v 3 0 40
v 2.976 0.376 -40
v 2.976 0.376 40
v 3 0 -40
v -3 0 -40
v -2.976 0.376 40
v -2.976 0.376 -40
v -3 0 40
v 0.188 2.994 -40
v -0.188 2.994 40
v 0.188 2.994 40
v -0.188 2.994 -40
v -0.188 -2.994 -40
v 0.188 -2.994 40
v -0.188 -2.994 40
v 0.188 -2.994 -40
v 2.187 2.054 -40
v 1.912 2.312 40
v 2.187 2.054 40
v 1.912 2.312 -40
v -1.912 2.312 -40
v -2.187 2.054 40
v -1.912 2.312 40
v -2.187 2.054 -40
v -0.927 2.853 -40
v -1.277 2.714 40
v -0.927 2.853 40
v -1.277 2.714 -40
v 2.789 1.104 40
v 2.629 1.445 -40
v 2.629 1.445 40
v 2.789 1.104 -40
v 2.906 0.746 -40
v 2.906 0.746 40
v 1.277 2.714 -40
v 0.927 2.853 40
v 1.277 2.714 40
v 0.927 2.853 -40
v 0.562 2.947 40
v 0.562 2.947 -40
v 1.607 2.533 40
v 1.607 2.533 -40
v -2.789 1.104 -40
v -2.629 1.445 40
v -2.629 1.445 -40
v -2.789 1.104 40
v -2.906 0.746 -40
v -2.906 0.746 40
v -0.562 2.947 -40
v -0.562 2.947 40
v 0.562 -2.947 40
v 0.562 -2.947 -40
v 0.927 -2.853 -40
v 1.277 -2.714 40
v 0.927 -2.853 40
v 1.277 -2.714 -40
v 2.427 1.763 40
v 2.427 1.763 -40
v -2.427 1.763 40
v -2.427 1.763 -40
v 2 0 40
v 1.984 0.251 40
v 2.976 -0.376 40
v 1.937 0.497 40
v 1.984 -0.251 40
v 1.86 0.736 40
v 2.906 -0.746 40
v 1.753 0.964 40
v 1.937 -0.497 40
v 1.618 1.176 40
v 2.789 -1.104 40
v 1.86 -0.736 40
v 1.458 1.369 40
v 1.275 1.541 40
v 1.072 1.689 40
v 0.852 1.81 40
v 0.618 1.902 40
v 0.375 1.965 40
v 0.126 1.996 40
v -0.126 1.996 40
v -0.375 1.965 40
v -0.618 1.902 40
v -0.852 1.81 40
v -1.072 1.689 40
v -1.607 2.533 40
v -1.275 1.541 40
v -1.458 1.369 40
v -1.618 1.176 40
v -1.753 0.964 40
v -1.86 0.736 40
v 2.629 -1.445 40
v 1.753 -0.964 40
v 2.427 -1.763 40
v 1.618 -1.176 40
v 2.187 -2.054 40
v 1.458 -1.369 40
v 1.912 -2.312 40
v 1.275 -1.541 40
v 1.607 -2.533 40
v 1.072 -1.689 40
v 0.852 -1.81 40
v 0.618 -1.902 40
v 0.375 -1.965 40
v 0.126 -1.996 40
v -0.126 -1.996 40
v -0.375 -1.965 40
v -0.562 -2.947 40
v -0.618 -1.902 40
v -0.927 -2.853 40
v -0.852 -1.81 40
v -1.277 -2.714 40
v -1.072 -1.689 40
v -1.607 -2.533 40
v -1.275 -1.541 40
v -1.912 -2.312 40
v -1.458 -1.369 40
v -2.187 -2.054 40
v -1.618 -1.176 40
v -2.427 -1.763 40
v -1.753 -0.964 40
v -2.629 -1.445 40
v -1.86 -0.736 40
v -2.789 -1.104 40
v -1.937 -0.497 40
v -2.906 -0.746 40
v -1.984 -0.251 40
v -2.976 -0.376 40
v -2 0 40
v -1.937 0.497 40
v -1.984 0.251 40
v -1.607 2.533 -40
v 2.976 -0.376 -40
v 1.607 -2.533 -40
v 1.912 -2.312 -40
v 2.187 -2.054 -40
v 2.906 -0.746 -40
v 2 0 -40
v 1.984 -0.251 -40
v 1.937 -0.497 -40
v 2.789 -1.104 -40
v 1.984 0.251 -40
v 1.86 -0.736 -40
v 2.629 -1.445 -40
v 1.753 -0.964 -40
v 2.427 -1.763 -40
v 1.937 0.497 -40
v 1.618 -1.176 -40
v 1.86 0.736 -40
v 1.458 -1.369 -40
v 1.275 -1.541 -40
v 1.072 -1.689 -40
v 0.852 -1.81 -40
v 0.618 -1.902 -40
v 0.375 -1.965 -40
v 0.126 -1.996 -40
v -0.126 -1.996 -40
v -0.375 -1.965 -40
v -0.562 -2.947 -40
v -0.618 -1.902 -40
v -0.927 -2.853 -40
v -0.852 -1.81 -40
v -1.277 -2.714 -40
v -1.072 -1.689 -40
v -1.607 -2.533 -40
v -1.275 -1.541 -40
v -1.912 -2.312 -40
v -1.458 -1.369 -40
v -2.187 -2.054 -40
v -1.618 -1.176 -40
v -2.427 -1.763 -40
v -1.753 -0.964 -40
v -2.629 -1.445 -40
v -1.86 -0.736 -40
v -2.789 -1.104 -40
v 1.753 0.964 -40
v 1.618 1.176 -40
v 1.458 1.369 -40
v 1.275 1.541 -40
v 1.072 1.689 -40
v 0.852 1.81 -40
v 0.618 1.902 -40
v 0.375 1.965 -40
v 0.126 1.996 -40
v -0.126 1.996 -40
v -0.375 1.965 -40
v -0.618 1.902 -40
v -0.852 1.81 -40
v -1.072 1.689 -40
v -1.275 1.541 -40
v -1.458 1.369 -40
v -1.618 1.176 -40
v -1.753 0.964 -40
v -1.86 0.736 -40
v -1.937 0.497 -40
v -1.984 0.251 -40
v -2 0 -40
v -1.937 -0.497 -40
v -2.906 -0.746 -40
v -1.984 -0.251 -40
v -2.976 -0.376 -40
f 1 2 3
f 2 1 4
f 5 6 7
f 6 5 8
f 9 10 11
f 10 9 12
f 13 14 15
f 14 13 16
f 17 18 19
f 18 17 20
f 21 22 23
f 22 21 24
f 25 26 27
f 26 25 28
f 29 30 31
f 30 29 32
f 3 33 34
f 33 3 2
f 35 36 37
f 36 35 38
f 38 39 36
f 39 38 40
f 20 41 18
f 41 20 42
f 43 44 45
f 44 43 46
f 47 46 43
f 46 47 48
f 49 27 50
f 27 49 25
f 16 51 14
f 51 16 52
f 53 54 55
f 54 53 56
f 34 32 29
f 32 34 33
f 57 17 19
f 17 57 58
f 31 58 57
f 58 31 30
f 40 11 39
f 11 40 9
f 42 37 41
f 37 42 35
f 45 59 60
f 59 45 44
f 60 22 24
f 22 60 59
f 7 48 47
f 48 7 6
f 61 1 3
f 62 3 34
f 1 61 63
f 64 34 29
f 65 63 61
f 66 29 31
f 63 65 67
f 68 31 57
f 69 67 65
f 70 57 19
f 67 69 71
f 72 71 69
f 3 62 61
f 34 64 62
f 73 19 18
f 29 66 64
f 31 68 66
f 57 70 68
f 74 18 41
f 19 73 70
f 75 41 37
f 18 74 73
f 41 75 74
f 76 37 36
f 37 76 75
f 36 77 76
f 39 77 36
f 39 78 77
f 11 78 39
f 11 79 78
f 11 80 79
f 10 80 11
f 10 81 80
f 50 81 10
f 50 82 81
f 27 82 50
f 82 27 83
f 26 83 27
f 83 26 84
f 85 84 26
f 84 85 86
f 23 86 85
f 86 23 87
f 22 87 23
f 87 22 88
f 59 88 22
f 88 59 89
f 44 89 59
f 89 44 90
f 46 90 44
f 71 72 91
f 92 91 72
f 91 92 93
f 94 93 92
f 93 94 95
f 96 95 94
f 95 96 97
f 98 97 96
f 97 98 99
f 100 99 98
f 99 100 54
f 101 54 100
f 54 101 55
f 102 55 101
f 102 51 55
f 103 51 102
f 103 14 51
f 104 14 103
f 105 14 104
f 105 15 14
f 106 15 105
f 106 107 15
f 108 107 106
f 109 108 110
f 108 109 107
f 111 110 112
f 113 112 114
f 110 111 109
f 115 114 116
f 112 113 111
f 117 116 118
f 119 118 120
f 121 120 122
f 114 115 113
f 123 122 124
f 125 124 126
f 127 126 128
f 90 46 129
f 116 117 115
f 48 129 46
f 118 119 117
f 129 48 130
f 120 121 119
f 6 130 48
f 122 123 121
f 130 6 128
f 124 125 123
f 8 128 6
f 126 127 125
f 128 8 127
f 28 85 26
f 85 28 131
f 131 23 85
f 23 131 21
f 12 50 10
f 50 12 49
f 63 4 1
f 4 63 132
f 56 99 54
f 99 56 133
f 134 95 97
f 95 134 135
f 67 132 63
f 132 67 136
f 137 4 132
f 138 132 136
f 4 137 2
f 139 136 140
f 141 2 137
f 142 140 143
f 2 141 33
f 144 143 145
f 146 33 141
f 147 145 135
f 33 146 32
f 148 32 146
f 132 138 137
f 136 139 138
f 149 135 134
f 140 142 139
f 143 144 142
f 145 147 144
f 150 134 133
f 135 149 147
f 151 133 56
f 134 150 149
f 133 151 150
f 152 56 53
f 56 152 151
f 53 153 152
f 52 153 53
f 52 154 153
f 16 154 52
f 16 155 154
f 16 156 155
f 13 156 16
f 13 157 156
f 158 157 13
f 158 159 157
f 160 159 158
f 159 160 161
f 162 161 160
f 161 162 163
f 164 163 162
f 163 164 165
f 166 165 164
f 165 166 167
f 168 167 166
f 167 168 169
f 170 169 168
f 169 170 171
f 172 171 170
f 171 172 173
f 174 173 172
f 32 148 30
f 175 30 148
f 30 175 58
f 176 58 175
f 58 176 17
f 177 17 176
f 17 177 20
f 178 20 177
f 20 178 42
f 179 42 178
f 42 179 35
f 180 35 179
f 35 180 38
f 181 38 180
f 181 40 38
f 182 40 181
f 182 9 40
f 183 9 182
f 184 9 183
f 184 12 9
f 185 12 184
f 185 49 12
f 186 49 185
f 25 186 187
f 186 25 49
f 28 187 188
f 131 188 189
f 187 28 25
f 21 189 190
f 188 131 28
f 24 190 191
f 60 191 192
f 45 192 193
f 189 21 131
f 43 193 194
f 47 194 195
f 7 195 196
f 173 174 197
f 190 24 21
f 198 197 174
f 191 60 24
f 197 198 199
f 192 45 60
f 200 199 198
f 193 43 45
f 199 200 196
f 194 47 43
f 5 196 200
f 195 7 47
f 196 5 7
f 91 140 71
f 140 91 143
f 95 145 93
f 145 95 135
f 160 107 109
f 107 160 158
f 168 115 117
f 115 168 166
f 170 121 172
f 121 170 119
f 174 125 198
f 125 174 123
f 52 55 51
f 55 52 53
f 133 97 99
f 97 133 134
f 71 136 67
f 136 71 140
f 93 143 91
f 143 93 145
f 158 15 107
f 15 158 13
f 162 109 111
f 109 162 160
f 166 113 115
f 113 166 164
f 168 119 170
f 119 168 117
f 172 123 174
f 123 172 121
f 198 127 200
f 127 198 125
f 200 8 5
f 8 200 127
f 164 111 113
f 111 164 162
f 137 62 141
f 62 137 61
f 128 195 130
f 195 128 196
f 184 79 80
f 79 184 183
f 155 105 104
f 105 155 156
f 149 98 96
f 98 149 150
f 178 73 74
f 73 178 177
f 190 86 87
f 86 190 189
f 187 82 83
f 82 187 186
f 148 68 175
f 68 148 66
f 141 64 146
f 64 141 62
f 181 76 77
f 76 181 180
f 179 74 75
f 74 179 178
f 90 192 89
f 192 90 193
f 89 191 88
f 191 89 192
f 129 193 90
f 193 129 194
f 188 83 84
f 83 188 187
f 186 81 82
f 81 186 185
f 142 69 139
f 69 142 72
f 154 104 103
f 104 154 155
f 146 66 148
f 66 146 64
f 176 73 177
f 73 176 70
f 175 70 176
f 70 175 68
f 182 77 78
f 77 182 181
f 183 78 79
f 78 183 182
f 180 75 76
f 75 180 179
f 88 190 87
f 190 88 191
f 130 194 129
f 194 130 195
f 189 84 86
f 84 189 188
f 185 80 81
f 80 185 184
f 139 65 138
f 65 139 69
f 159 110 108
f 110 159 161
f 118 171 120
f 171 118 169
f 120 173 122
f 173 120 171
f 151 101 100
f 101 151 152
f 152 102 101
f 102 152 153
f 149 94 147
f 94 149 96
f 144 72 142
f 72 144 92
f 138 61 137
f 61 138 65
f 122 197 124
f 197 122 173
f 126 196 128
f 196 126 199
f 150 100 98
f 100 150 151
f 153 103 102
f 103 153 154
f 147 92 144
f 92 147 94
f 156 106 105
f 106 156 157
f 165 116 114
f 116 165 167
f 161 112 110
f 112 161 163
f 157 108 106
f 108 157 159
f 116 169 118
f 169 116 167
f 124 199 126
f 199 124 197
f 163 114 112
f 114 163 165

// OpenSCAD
$fn = 50;


difference() {
	union() {
		translate(v = [0, 0, -40.0000000000]) {
			cylinder(h = 80, r = 3.0000000000);
		}
	}
	union() {
		translate(v = [0, 0, -100.0000000000]) {
			cylinder(h = 200, r = 2);
		}
	}
}
